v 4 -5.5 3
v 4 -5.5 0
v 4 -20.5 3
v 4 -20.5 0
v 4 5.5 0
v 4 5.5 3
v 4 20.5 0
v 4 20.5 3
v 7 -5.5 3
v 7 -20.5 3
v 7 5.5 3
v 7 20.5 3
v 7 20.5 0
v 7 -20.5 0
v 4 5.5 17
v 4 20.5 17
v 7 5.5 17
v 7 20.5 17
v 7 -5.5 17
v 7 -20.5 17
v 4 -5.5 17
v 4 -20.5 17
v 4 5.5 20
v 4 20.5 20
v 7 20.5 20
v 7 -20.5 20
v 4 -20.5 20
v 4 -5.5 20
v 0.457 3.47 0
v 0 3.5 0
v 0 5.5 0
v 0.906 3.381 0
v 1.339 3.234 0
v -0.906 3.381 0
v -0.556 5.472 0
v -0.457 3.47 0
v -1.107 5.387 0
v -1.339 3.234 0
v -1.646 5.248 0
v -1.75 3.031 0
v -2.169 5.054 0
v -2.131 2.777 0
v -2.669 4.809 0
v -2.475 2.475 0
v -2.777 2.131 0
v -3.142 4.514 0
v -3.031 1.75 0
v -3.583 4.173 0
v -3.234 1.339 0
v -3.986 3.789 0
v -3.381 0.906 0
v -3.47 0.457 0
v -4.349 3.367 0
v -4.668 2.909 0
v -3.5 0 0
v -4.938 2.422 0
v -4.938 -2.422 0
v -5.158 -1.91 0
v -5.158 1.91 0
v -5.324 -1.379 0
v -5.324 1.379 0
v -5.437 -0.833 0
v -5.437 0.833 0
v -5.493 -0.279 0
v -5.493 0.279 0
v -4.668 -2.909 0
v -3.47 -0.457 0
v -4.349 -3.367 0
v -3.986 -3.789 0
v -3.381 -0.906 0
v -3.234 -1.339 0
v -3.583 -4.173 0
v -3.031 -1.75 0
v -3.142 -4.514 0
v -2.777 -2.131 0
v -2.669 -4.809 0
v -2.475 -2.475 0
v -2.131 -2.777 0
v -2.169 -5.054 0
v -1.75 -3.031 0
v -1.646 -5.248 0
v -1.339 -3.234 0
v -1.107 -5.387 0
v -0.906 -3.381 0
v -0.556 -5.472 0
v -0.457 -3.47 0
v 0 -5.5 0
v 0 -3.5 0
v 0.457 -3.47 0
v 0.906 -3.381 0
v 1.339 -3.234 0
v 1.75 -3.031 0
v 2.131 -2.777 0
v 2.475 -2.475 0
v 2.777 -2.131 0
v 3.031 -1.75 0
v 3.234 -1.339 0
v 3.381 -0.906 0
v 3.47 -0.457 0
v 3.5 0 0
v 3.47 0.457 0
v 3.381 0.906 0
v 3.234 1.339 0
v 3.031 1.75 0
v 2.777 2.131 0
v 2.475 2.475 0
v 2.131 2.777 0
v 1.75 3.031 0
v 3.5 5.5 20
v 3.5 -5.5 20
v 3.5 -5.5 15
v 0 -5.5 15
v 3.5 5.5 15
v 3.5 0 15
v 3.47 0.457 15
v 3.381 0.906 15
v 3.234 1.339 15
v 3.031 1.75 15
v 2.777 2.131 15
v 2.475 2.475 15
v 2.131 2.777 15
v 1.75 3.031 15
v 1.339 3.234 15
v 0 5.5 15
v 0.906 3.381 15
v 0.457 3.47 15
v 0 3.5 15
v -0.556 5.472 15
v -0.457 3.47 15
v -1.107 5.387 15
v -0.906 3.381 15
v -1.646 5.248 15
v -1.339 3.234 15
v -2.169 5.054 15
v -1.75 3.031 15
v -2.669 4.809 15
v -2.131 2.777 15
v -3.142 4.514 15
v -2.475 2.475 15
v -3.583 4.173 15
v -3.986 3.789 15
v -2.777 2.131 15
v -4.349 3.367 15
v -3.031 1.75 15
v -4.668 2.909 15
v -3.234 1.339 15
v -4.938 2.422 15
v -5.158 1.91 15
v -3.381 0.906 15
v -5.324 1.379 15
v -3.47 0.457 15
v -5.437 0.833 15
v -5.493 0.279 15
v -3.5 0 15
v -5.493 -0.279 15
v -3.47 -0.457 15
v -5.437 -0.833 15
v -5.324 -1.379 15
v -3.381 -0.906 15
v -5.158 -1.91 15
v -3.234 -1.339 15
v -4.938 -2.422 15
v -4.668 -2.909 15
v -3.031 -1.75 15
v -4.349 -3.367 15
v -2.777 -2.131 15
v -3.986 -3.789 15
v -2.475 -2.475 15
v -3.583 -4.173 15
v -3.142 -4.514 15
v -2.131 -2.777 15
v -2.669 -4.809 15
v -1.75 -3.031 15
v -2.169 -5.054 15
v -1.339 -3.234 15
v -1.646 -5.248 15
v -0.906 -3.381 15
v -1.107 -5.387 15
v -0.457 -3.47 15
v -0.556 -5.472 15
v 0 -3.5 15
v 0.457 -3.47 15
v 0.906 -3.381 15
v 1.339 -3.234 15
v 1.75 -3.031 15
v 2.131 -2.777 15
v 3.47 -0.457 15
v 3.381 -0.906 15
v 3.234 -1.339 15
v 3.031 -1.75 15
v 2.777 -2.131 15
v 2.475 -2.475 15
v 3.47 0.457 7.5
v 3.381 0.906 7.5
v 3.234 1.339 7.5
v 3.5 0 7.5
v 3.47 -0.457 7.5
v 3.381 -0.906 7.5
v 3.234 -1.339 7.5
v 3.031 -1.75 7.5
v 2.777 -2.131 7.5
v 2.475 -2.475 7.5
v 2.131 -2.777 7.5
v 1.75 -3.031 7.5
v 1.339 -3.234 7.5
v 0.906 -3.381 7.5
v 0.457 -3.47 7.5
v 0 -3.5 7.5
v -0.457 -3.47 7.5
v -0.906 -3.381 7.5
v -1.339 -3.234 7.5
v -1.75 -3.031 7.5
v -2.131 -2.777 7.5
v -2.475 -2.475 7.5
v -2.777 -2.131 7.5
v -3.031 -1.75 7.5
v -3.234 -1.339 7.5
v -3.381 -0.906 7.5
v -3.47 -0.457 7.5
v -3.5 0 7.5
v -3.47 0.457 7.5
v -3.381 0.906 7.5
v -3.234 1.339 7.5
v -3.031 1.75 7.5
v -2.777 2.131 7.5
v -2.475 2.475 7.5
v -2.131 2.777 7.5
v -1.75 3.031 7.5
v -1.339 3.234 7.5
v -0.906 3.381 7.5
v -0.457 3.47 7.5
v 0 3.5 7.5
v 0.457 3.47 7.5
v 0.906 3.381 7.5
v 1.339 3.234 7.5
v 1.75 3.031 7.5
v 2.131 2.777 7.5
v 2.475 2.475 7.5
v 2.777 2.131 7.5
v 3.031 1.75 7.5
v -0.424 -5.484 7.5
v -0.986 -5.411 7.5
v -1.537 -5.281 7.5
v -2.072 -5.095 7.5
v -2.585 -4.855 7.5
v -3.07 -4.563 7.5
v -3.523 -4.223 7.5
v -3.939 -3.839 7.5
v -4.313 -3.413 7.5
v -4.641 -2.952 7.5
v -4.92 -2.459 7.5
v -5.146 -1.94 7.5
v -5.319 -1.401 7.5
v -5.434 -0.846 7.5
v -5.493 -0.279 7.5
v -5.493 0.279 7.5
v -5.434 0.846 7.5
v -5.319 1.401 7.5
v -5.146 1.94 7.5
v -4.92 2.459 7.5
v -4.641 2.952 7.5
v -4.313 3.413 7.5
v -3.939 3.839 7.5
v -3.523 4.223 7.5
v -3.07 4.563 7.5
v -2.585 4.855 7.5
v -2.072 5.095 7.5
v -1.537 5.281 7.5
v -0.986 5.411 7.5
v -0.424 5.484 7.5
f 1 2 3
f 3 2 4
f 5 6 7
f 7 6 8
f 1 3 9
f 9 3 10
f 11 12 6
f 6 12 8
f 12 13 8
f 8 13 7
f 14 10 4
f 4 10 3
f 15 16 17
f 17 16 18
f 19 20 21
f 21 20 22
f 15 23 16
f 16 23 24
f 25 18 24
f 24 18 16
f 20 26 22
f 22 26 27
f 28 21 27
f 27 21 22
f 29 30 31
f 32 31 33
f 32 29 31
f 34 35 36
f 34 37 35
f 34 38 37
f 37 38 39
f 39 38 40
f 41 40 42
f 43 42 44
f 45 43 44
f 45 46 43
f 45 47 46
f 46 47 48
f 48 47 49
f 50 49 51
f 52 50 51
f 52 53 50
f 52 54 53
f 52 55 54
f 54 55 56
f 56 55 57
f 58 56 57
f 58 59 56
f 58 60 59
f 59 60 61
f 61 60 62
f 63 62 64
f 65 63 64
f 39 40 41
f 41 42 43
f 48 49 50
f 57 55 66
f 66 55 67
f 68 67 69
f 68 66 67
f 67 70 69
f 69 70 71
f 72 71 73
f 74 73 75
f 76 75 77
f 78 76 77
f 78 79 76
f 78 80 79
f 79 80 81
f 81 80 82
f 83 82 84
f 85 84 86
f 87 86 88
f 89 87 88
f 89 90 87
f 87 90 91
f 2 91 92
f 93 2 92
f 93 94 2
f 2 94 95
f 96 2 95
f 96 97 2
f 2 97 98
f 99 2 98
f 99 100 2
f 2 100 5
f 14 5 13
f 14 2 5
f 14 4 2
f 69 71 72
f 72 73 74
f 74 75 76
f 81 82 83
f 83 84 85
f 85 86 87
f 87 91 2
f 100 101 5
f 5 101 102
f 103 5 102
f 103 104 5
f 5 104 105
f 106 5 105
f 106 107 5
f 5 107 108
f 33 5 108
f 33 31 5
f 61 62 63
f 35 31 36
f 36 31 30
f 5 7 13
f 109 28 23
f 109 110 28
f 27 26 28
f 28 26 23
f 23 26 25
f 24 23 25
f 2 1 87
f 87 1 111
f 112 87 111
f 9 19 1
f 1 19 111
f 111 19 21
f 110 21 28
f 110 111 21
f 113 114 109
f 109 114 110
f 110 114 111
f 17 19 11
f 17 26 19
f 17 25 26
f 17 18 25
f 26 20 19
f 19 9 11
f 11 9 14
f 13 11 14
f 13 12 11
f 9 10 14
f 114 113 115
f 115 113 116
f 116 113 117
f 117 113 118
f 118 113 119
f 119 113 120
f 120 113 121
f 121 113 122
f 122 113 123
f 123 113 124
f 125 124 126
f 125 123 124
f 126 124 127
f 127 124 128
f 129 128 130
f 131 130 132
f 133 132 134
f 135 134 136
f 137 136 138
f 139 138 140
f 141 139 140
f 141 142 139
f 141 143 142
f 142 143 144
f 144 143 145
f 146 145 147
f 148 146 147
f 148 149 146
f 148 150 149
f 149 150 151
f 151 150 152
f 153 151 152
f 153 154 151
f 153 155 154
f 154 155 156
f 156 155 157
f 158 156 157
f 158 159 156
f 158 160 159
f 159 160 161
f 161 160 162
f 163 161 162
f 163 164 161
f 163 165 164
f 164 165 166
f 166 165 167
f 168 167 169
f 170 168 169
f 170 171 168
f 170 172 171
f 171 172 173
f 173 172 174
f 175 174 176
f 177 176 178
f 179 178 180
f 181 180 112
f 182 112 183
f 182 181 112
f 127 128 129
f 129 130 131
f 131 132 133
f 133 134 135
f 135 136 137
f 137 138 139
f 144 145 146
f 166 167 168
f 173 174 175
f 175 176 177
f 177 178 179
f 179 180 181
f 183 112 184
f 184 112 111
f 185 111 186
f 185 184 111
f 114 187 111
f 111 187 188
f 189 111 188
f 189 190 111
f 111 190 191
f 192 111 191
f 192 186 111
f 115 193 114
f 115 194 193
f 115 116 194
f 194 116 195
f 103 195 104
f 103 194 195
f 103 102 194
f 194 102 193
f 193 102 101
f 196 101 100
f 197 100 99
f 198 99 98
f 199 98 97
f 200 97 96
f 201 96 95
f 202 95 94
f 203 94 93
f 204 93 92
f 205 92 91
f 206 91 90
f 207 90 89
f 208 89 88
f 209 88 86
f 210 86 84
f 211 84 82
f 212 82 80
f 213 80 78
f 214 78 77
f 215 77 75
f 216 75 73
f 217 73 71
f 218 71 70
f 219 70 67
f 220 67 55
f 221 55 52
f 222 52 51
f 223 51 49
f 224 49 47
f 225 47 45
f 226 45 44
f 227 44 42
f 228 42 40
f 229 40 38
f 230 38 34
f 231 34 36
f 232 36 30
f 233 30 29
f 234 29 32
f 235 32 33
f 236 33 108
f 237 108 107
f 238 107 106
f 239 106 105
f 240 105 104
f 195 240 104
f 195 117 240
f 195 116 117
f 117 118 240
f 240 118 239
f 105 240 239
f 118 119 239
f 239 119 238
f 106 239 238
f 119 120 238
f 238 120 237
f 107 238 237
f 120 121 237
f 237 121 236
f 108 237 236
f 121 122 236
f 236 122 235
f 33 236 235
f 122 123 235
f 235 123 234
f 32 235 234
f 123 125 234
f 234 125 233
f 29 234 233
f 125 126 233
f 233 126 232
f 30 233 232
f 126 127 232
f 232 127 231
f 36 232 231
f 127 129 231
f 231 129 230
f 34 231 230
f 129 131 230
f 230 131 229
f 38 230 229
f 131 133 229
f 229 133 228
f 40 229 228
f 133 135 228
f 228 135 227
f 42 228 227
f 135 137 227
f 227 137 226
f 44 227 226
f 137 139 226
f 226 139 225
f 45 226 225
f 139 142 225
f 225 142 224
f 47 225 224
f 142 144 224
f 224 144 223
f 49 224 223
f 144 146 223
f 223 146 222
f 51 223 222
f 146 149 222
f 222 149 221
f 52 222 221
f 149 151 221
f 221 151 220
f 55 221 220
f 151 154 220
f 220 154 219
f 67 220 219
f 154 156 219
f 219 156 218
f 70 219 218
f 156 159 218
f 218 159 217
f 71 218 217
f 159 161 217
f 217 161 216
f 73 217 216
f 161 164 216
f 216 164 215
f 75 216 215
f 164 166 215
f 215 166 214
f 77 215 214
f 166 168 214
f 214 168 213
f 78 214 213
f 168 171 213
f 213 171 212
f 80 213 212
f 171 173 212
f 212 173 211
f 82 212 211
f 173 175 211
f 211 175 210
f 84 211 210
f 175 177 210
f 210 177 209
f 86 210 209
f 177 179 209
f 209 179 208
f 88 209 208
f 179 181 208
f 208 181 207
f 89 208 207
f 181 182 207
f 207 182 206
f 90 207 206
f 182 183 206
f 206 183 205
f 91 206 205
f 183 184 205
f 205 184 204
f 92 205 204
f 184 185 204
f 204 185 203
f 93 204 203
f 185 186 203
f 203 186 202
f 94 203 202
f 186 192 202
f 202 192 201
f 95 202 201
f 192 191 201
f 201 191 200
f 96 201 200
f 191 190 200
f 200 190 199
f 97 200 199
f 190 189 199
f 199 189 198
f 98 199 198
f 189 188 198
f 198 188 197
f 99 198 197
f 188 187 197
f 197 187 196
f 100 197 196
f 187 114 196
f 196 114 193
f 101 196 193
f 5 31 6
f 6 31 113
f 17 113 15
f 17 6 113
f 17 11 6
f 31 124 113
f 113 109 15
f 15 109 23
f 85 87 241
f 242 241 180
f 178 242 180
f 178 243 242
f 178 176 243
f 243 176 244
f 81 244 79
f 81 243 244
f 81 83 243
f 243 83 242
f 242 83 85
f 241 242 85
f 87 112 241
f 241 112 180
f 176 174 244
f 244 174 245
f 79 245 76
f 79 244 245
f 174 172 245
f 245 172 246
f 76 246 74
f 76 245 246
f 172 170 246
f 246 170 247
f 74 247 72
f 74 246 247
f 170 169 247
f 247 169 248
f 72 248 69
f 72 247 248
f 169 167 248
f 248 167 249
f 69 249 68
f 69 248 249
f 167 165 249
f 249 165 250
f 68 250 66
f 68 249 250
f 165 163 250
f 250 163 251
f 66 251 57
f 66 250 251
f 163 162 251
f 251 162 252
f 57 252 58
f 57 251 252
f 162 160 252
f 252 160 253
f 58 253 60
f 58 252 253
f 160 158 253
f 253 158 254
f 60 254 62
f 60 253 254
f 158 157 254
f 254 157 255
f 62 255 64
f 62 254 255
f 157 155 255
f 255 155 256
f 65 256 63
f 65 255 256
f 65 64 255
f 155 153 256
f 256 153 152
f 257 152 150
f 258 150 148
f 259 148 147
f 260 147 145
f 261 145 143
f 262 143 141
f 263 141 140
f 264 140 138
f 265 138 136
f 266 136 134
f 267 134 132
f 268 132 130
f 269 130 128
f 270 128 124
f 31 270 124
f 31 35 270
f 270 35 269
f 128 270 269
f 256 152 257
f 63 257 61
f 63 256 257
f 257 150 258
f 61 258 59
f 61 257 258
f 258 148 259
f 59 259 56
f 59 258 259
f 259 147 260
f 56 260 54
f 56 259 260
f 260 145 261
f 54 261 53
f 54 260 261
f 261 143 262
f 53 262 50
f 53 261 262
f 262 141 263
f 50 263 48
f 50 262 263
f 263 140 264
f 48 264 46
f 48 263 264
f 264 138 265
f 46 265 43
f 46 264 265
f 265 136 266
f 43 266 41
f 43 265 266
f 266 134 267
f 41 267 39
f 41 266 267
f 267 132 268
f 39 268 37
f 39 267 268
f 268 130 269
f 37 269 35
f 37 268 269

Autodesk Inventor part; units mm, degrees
ref_plane "YZ Plane" through (0, 0, 0) normal (1, 0, 0) x (0, 1, 0)
ref_plane "XZ Plane" through (0, 0, 0) normal (0, 1, 0) x (-1, 0, 0)
ref_plane "XY Plane" through (0, 0, 0) normal (0, 0, 1) x (1, 0, 0)
sketch "Sketch1" plane through (0, 0, 0) normal (0, 0, 1) x (1, 0, 0)
  circle A0 centre (0, 0) radius 5.5
  line L0 (0, 5.5) -> (11.9603, 5.5)
  line L1 (11.9603, 5.5) -> (11.9603, -5.5)
  line L2 (11.9603, -5.5) -> (0, -5.5)
  line L3 (0, -5.5) -> (0, 5.5)
  circle A1 centre (0, 0) radius 3.5
  dimension "d1" = 11
  dimension "d0" = 7
  dimension "d2" = 11
extrude "Extrusion1" add sketch "Sketch1" along normal blind 15 contours A0 L3 A1 | A0 L0 L1 L2 | L3 A1 A0 | A1 L3 picked at (0.9121, 0.7274)
sketch "Sketch2" plane through (0, 0, 15) normal (0, 0, 1) x (1, 0, 0)
  circle A0 centre (0, 0) radius 3.5
extrude "Extrusion2" cut sketch "Sketch2" against normal blind 15
sketch "Sketch3" plane through (0, 0, 15) normal (0, 0, 1) x (1, 0, 0)
  line L0 (11.9603, -5.5) -> (0, -5.5) projected
  line L1 (7, 5.5) -> (11.9603, 5.5)
  line L2 (11.9603, 5.5) -> (11.9603, -5.5)
  line L3 (11.9603, -5.5) -> (7, -5.5)
  line L4 (7, -5.5) -> (7, 5.5)
  line L5 (11.9603, -5.5) -> (11.9603, 5.5) projected
  line L6 (11.9603, 5.5) -> (0, 5.5) projected
  point P0 (0, 0)
  dimension "d7" = 7
  dimension "d8" = 0
  dimension "d9" = 0
extrude "Extrusion3" cut sketch "Sketch3" against normal blind 15
sketch "Sketch4" plane through (7, -5.5, 15) normal (1, 0, 0) x (0, 0, -1)
  point P0 (15, 5.5)
sketch "Sketch5" plane through (0, 0, 15) normal (0, 0, 1) x (1, 0, 0)
  point P0 (0, 0)
sketch "Sketch6" plane through (0, 0, 15) normal (0, 0, 1) x (1, 0, 0)
  line L0 (7, -5.5) -> (0, -5.5) projected
  line L1 (7, 5.5) -> (3.5, 5.5)
  line L2 (3.5, 5.5) -> (3.5, -5.5)
  line L3 (3.5, -5.5) -> (7, -5.5)
  line L4 (7, -5.5) -> (7, 5.5)
  point P0 (0, 0)
extrude "Extrusion4" add sketch "Sketch6" along normal blind 5
sketch "Sketch7" plane through (7, -5.5, 0) normal (1, 0, 0) x (0, 0, -1)
  line L0 (-3, -15) -> (0, -15)
  line L1 (0, -15) -> (0, 26)
  line L2 (0, 26) -> (-3, 26)
  line L3 (-3, 26) -> (-3, -15)
  line L4 (-20, -15) -> (-17, -15)
  line L5 (-17, -15) -> (-17, 26)
  line L6 (-17, 26) -> (-20, 26)
  line L7 (-20, 26) -> (-20, -15)
  line L8 (-20, 0) -> (-20, 11) projected
  line L9 (0, 0) -> (-20, 0) projected
  line L10 (-20, 11) -> (0, 11) projected
  point P0 (0, 5.5)
  dimension "d14" = 3
  dimension "d15" = 20
  dimension "d16" = 3
  dimension "d17" = 0
  dimension "d18" = 15
  dimension "d19" = 15
  dimension "d20" = 41
extrude "Extrusion5" add sketch "Sketch7" against normal blind 3 contours L3 L9 L1 L0 | L3 L10 L1 L9 | L3 L2 L1 L10 | L9 L7 L10 L5 | L5 L4 L7 L9 | L10 L7 L6 L5
properties part number "Slider"
